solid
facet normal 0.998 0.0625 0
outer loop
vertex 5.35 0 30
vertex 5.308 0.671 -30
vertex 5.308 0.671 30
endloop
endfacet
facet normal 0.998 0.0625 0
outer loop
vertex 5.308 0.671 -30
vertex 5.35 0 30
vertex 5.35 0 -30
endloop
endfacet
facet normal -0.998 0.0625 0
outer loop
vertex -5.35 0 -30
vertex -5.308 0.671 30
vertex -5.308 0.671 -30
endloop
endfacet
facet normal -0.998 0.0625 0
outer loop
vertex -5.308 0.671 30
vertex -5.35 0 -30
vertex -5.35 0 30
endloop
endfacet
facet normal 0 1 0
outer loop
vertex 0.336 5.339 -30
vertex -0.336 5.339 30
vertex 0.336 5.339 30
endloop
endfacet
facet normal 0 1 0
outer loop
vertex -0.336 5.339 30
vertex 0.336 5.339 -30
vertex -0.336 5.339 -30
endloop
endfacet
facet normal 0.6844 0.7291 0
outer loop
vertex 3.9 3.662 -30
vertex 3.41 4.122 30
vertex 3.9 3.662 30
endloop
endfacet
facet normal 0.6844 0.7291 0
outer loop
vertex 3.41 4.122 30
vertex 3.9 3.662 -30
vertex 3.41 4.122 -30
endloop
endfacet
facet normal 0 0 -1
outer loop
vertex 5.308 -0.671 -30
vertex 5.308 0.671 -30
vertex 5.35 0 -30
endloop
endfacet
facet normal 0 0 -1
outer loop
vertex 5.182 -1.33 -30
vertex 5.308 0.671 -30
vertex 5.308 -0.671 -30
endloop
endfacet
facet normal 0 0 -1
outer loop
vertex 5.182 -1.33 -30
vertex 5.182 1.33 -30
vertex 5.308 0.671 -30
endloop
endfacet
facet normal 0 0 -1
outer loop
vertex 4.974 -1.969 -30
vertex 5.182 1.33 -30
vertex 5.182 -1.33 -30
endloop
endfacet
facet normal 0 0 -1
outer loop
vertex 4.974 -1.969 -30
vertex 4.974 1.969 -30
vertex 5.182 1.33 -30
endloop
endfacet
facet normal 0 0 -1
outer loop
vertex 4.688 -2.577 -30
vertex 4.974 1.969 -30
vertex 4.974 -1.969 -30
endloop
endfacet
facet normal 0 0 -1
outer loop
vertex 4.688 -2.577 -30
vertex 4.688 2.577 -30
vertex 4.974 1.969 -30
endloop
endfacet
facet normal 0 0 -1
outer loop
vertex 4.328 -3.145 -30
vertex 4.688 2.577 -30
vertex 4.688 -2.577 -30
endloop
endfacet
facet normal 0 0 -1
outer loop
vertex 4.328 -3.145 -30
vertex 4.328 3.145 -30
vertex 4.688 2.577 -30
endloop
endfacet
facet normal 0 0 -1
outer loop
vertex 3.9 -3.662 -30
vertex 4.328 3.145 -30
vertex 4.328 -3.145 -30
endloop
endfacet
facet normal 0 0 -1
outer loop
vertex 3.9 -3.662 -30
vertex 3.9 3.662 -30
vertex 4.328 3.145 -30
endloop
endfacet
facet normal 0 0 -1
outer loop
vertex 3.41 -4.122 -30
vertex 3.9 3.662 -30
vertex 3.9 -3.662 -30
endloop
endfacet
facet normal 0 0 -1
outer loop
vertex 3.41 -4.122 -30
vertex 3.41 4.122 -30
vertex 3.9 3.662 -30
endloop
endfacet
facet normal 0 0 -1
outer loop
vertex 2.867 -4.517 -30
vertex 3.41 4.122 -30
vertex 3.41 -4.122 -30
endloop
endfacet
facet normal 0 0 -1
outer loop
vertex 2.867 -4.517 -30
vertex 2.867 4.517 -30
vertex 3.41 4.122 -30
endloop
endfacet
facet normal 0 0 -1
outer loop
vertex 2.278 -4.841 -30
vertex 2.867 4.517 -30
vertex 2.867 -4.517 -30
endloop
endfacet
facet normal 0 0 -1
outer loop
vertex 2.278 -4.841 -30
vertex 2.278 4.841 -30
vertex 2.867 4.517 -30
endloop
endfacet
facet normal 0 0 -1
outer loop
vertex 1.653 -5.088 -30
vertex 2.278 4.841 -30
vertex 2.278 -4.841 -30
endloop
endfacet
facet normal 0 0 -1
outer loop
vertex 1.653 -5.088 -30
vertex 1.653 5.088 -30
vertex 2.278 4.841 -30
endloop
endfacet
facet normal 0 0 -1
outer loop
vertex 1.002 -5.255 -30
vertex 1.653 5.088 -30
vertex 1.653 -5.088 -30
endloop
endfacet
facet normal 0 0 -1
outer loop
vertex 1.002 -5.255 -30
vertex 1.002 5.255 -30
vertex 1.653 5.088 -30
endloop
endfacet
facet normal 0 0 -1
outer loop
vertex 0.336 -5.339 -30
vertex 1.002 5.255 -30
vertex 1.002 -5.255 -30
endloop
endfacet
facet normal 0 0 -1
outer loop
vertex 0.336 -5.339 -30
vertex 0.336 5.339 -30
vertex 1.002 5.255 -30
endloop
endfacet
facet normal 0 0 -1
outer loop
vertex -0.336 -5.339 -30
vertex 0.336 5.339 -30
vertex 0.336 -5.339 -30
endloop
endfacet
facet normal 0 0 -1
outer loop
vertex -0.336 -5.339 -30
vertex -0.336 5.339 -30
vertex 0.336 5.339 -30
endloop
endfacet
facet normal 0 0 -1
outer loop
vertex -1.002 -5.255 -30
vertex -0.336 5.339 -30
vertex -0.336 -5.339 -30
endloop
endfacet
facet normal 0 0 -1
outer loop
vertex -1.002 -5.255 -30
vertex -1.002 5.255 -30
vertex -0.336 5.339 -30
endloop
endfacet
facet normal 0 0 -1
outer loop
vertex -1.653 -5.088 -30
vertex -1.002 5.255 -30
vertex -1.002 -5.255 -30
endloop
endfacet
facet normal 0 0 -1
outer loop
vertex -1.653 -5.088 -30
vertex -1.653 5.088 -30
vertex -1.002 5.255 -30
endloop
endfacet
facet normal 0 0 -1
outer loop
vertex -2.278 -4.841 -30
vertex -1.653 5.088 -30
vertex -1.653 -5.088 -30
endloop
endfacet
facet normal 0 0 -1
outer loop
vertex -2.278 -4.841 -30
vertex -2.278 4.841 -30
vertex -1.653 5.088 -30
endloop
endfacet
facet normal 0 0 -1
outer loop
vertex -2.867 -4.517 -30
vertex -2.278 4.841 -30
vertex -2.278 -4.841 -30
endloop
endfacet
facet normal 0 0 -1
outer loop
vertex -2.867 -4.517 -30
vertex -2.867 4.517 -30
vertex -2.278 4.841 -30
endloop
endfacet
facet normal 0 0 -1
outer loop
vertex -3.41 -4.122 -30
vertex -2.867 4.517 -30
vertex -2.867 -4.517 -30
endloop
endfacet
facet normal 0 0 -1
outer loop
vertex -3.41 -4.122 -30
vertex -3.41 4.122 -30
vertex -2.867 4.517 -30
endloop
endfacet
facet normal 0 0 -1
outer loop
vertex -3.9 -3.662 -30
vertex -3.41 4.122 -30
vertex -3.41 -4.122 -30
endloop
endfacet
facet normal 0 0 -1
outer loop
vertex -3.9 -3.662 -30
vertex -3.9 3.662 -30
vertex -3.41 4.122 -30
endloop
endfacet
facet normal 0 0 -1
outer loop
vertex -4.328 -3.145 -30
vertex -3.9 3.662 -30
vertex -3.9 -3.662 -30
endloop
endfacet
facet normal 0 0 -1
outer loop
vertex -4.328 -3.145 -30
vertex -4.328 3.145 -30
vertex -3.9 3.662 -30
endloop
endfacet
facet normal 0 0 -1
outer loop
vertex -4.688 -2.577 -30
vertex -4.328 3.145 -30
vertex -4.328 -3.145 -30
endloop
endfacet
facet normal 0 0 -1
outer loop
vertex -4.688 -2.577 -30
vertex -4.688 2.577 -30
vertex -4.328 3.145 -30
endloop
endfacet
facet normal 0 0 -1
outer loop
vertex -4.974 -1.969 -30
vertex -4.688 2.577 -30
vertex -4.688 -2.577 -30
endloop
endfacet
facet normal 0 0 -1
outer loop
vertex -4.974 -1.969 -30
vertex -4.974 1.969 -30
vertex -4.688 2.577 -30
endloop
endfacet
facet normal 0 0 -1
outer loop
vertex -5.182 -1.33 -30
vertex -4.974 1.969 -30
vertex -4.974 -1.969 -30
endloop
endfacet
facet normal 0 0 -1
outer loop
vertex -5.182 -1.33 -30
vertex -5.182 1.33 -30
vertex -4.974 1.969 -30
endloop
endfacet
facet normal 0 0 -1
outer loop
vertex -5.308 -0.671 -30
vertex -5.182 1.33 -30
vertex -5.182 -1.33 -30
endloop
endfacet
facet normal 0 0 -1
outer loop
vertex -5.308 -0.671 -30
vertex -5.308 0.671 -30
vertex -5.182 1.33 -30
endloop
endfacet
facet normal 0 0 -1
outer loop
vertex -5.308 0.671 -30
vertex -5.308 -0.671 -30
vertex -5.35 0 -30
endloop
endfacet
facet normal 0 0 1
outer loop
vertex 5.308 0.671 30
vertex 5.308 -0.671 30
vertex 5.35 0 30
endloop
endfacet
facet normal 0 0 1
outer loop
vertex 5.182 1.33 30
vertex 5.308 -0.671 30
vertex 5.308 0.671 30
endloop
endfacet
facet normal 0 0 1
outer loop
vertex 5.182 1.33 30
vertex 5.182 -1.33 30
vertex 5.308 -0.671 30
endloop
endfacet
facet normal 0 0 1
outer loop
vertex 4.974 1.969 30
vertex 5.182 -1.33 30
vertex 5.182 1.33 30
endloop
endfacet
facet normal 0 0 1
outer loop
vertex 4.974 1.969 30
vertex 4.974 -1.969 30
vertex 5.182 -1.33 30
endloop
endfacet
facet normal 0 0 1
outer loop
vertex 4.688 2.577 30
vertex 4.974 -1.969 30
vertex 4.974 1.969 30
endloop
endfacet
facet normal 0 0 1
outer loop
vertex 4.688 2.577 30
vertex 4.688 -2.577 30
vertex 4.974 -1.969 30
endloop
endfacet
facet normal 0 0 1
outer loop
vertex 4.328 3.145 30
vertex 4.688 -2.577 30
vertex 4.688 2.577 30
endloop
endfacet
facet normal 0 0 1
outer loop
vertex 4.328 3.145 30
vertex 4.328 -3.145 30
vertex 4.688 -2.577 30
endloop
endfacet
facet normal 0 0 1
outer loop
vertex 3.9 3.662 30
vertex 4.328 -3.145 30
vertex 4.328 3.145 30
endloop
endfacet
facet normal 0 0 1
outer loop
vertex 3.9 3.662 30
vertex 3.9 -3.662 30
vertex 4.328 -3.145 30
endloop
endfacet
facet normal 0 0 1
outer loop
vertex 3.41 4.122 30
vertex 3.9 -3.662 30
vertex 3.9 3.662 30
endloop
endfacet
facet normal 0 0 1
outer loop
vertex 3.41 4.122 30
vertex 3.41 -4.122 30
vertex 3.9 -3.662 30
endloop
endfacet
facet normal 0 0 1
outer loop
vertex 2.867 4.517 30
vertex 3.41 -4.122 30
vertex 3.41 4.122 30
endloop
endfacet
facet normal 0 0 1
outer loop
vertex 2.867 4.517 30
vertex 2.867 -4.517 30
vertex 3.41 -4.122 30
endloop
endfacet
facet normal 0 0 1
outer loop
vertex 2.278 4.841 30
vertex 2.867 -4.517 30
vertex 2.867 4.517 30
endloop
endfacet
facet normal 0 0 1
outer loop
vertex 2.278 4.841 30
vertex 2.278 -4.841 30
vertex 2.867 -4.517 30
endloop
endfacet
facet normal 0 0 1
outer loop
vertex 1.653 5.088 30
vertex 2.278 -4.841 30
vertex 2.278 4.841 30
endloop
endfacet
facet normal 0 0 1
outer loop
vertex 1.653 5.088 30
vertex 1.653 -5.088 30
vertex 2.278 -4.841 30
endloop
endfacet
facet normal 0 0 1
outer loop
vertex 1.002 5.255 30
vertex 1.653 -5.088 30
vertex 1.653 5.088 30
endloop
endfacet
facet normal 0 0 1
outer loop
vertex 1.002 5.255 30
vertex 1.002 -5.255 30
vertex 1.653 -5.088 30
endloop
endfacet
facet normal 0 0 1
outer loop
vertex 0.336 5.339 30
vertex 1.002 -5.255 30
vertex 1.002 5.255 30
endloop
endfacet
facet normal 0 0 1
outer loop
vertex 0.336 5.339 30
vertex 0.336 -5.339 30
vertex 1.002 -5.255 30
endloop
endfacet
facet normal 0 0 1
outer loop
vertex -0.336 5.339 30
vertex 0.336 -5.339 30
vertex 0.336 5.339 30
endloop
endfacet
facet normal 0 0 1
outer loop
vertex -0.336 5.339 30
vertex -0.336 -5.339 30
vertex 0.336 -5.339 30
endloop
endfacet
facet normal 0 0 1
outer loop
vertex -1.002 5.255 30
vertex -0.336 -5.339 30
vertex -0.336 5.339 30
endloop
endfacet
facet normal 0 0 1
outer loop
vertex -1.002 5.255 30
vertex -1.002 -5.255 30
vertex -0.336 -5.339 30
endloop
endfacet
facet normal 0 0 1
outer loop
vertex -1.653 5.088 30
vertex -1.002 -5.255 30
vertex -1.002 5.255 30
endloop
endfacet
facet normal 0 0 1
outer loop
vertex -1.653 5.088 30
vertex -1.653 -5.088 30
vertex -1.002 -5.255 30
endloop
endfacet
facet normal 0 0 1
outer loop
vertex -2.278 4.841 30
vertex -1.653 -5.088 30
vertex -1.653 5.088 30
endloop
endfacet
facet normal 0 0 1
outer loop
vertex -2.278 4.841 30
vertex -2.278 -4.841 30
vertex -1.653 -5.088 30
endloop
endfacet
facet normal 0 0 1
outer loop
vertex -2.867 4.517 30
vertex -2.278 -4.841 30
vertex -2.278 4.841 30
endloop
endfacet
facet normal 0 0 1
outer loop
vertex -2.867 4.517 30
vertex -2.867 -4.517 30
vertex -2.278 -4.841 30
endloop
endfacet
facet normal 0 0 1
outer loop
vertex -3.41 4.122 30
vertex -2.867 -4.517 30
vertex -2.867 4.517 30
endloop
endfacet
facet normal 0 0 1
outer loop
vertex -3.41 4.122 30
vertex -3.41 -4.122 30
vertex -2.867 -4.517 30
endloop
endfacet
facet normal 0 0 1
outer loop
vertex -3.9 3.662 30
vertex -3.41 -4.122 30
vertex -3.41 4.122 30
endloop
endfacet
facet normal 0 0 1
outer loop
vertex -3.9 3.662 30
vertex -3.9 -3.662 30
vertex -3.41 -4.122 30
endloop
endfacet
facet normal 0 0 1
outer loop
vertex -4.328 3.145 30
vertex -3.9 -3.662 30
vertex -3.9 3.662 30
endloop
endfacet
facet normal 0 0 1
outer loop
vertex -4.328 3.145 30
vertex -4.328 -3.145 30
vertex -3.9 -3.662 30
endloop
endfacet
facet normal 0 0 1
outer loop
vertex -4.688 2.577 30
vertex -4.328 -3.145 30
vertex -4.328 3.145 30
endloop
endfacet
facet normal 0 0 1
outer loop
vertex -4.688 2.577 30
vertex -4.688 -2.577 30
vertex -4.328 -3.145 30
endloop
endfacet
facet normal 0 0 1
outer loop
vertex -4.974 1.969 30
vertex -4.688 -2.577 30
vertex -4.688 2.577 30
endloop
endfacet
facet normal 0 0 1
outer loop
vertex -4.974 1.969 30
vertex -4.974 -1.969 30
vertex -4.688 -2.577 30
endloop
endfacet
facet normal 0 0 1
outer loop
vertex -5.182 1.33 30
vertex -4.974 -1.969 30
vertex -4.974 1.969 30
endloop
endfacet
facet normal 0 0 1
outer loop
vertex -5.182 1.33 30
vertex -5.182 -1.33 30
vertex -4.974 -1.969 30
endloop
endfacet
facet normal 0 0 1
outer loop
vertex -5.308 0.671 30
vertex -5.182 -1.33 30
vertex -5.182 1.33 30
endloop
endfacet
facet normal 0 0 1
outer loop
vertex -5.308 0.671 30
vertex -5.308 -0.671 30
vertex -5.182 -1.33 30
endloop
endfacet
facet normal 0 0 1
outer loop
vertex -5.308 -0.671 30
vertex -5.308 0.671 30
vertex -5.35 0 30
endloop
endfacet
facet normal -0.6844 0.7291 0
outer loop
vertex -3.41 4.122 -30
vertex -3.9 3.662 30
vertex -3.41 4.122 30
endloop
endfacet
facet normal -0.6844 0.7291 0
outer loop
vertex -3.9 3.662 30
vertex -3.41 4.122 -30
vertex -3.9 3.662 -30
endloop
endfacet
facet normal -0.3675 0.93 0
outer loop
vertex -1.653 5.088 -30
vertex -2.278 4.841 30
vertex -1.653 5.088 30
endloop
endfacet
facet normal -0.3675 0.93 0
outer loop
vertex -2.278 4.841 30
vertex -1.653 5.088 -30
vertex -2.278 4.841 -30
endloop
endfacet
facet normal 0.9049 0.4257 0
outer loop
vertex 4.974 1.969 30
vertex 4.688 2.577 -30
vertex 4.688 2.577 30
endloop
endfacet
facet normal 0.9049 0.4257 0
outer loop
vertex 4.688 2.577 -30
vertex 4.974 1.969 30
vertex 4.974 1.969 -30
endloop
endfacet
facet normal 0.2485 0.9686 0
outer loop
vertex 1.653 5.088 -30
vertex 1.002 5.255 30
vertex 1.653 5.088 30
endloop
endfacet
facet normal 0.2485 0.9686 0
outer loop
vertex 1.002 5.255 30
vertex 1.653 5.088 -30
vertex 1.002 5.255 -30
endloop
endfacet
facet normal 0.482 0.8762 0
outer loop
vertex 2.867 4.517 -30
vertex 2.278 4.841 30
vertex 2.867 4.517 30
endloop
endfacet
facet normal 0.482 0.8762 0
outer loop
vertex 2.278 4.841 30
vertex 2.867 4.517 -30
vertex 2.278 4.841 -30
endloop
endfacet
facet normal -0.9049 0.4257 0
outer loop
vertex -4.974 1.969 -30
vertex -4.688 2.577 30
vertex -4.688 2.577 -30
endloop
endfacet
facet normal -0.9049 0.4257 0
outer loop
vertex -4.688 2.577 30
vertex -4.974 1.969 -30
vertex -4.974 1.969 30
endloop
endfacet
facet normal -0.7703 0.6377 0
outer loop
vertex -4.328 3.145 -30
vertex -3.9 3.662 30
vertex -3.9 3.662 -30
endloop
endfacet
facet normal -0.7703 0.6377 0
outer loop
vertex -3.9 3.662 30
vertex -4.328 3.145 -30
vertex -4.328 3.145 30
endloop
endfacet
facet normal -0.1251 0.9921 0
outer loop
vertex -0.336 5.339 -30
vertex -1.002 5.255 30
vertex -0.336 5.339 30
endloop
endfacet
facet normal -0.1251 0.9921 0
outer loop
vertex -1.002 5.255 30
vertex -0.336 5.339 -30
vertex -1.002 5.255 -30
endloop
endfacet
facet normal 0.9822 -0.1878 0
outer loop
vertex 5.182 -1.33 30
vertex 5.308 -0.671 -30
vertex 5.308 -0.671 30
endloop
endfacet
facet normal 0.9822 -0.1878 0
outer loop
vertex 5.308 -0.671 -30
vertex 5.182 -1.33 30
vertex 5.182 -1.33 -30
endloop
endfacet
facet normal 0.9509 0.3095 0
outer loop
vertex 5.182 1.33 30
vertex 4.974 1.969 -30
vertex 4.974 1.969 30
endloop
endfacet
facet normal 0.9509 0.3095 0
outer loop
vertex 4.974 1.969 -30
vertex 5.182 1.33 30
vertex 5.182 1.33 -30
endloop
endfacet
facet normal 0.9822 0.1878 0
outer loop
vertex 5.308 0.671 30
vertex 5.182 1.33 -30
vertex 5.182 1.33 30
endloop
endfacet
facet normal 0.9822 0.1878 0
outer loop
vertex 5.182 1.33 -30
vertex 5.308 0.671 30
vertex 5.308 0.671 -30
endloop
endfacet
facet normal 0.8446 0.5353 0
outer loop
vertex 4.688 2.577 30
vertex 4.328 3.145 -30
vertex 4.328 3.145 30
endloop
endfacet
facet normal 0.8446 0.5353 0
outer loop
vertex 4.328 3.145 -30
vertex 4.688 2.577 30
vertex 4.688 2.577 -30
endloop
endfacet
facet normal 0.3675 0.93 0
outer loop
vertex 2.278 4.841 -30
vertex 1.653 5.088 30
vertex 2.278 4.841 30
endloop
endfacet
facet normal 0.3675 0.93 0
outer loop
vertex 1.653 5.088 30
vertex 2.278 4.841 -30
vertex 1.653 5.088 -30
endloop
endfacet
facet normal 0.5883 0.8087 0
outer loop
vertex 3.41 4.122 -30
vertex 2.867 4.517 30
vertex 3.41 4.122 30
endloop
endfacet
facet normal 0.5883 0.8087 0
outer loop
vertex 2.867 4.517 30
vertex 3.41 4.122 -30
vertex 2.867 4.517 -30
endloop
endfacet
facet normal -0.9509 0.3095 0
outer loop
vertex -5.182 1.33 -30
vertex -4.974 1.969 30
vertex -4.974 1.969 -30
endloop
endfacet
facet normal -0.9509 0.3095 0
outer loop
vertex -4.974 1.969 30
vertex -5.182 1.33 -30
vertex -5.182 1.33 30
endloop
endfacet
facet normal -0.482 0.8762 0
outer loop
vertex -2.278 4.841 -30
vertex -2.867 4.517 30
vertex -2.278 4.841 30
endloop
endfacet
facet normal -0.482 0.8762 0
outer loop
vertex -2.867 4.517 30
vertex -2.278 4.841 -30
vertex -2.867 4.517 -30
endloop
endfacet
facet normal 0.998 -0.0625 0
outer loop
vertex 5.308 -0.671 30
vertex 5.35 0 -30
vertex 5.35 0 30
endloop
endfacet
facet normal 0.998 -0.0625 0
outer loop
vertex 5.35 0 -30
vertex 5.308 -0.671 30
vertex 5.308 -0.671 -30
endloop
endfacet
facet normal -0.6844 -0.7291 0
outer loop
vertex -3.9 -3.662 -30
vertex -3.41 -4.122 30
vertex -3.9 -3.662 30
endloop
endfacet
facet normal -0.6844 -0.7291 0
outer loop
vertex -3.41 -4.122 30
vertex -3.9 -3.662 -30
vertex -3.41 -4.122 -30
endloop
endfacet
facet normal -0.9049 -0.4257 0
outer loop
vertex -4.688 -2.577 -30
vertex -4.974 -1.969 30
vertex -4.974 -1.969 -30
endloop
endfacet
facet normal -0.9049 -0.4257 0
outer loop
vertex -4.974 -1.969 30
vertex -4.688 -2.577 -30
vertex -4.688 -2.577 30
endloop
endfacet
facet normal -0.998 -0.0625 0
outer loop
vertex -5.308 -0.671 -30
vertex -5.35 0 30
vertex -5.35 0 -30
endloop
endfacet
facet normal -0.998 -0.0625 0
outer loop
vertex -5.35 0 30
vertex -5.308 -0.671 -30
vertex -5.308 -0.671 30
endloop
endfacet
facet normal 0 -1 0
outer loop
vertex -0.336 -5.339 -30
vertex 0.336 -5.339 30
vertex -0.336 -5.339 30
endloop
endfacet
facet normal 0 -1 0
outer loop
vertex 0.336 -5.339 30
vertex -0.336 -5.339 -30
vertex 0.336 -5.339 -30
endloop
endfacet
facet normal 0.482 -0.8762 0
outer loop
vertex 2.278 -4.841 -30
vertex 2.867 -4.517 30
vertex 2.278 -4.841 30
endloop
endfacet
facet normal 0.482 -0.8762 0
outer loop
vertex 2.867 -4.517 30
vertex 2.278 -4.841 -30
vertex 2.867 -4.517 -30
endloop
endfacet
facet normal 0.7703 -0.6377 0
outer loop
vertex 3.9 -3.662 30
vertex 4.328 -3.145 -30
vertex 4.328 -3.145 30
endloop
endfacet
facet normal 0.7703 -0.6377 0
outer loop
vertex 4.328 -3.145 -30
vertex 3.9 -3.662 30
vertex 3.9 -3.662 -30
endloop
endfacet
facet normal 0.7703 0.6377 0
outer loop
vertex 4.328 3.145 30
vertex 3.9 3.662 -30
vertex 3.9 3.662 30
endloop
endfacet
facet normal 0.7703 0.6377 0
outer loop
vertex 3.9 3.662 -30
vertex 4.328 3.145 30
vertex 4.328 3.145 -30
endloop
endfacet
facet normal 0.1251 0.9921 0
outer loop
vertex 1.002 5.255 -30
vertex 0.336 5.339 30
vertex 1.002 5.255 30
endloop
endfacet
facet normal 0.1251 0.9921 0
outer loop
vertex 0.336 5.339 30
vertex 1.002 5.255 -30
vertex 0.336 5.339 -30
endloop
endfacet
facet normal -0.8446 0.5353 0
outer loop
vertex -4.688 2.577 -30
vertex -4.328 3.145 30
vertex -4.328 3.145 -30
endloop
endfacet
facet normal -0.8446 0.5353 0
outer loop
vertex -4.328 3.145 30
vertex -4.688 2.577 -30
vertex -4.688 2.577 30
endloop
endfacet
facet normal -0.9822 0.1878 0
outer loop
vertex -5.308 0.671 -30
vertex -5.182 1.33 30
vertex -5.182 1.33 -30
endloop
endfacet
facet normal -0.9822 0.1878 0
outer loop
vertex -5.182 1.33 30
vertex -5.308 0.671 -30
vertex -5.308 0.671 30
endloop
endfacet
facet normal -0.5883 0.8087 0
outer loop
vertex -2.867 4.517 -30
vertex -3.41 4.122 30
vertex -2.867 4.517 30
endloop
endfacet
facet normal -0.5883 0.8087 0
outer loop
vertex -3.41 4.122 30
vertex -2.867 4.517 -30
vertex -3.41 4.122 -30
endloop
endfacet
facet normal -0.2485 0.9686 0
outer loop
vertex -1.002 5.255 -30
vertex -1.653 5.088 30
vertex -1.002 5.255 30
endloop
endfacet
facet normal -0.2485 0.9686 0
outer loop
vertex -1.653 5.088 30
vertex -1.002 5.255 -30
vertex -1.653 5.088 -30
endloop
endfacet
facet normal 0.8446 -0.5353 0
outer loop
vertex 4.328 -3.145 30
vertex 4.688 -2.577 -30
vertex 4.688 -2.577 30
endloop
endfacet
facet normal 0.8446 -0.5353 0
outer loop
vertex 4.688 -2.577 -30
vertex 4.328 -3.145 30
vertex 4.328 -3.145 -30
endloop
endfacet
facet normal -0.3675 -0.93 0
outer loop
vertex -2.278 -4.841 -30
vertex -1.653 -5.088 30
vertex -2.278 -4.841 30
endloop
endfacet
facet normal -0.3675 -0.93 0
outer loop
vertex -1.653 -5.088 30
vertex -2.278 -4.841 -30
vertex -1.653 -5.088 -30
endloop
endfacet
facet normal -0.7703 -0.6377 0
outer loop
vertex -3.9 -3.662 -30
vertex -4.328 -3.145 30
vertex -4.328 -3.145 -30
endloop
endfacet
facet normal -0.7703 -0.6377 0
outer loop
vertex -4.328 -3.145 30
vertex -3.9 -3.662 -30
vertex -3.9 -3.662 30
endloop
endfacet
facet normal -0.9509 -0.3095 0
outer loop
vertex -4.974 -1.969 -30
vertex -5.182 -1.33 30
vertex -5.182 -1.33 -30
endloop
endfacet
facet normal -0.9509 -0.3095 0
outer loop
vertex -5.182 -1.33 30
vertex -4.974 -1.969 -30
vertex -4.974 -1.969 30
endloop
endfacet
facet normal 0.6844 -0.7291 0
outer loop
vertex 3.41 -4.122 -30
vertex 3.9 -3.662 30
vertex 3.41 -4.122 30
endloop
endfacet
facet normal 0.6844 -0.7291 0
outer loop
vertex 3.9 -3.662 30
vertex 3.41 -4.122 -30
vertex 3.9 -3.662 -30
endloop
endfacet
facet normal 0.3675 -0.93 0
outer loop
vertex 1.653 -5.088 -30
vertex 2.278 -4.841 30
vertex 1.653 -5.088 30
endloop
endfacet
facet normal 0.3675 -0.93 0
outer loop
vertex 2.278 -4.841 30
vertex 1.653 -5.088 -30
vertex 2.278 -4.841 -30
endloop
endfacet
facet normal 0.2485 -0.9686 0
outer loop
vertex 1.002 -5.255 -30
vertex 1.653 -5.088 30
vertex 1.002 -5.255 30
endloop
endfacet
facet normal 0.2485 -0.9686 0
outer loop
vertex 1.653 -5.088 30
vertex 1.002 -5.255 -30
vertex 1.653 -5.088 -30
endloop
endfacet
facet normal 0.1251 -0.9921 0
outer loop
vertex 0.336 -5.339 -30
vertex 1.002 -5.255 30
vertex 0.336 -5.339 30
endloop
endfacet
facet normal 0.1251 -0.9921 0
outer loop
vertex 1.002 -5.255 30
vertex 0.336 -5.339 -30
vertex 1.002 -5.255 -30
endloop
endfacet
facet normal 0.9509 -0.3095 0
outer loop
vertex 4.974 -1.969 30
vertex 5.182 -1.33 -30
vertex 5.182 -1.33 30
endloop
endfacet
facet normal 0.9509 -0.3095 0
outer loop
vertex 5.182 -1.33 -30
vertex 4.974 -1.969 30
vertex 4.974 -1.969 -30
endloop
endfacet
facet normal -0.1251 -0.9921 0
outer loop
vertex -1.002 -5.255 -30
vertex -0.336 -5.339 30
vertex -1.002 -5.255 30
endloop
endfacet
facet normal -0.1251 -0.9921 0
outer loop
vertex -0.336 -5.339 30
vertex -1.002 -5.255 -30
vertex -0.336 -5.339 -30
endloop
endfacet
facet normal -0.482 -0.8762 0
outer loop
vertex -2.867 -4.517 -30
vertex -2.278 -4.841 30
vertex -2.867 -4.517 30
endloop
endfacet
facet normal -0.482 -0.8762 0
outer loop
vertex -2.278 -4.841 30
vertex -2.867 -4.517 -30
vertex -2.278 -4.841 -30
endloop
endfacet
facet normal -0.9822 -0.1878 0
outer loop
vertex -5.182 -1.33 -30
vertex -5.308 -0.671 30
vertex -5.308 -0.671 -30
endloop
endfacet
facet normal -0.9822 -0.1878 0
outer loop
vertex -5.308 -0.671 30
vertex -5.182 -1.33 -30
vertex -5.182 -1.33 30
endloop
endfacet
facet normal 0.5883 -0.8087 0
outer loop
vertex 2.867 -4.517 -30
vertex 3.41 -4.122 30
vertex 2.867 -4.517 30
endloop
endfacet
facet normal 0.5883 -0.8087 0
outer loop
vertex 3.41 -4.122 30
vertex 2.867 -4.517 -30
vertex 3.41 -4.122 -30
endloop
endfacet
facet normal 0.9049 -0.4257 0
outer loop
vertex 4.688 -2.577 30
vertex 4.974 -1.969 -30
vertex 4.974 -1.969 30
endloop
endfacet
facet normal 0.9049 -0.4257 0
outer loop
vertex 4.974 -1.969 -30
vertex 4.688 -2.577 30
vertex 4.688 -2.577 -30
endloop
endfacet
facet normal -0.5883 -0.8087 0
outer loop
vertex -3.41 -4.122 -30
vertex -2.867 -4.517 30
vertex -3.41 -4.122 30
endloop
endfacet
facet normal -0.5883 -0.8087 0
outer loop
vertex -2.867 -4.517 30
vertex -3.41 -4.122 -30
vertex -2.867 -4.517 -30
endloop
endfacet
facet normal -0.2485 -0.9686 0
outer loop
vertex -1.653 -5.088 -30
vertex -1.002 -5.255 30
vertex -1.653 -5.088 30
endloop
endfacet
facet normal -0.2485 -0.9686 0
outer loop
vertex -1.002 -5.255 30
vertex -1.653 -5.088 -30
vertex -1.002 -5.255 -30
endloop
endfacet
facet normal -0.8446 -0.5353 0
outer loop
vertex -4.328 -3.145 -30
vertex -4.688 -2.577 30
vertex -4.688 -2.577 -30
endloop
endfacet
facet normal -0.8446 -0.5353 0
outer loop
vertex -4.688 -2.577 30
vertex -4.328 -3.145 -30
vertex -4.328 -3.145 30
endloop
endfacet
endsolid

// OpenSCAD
$fn = 50;


difference() {
	union() {
		translate(v = [0, 0, -30.0000000000]) {
			cylinder(h = 60, r = 5.3500000000);
		}
	}
	union() {
		translate(v = [0, 0, -100.0000000000]) {
			cylinder(h = 200, r = 0);
		}
	}
}
